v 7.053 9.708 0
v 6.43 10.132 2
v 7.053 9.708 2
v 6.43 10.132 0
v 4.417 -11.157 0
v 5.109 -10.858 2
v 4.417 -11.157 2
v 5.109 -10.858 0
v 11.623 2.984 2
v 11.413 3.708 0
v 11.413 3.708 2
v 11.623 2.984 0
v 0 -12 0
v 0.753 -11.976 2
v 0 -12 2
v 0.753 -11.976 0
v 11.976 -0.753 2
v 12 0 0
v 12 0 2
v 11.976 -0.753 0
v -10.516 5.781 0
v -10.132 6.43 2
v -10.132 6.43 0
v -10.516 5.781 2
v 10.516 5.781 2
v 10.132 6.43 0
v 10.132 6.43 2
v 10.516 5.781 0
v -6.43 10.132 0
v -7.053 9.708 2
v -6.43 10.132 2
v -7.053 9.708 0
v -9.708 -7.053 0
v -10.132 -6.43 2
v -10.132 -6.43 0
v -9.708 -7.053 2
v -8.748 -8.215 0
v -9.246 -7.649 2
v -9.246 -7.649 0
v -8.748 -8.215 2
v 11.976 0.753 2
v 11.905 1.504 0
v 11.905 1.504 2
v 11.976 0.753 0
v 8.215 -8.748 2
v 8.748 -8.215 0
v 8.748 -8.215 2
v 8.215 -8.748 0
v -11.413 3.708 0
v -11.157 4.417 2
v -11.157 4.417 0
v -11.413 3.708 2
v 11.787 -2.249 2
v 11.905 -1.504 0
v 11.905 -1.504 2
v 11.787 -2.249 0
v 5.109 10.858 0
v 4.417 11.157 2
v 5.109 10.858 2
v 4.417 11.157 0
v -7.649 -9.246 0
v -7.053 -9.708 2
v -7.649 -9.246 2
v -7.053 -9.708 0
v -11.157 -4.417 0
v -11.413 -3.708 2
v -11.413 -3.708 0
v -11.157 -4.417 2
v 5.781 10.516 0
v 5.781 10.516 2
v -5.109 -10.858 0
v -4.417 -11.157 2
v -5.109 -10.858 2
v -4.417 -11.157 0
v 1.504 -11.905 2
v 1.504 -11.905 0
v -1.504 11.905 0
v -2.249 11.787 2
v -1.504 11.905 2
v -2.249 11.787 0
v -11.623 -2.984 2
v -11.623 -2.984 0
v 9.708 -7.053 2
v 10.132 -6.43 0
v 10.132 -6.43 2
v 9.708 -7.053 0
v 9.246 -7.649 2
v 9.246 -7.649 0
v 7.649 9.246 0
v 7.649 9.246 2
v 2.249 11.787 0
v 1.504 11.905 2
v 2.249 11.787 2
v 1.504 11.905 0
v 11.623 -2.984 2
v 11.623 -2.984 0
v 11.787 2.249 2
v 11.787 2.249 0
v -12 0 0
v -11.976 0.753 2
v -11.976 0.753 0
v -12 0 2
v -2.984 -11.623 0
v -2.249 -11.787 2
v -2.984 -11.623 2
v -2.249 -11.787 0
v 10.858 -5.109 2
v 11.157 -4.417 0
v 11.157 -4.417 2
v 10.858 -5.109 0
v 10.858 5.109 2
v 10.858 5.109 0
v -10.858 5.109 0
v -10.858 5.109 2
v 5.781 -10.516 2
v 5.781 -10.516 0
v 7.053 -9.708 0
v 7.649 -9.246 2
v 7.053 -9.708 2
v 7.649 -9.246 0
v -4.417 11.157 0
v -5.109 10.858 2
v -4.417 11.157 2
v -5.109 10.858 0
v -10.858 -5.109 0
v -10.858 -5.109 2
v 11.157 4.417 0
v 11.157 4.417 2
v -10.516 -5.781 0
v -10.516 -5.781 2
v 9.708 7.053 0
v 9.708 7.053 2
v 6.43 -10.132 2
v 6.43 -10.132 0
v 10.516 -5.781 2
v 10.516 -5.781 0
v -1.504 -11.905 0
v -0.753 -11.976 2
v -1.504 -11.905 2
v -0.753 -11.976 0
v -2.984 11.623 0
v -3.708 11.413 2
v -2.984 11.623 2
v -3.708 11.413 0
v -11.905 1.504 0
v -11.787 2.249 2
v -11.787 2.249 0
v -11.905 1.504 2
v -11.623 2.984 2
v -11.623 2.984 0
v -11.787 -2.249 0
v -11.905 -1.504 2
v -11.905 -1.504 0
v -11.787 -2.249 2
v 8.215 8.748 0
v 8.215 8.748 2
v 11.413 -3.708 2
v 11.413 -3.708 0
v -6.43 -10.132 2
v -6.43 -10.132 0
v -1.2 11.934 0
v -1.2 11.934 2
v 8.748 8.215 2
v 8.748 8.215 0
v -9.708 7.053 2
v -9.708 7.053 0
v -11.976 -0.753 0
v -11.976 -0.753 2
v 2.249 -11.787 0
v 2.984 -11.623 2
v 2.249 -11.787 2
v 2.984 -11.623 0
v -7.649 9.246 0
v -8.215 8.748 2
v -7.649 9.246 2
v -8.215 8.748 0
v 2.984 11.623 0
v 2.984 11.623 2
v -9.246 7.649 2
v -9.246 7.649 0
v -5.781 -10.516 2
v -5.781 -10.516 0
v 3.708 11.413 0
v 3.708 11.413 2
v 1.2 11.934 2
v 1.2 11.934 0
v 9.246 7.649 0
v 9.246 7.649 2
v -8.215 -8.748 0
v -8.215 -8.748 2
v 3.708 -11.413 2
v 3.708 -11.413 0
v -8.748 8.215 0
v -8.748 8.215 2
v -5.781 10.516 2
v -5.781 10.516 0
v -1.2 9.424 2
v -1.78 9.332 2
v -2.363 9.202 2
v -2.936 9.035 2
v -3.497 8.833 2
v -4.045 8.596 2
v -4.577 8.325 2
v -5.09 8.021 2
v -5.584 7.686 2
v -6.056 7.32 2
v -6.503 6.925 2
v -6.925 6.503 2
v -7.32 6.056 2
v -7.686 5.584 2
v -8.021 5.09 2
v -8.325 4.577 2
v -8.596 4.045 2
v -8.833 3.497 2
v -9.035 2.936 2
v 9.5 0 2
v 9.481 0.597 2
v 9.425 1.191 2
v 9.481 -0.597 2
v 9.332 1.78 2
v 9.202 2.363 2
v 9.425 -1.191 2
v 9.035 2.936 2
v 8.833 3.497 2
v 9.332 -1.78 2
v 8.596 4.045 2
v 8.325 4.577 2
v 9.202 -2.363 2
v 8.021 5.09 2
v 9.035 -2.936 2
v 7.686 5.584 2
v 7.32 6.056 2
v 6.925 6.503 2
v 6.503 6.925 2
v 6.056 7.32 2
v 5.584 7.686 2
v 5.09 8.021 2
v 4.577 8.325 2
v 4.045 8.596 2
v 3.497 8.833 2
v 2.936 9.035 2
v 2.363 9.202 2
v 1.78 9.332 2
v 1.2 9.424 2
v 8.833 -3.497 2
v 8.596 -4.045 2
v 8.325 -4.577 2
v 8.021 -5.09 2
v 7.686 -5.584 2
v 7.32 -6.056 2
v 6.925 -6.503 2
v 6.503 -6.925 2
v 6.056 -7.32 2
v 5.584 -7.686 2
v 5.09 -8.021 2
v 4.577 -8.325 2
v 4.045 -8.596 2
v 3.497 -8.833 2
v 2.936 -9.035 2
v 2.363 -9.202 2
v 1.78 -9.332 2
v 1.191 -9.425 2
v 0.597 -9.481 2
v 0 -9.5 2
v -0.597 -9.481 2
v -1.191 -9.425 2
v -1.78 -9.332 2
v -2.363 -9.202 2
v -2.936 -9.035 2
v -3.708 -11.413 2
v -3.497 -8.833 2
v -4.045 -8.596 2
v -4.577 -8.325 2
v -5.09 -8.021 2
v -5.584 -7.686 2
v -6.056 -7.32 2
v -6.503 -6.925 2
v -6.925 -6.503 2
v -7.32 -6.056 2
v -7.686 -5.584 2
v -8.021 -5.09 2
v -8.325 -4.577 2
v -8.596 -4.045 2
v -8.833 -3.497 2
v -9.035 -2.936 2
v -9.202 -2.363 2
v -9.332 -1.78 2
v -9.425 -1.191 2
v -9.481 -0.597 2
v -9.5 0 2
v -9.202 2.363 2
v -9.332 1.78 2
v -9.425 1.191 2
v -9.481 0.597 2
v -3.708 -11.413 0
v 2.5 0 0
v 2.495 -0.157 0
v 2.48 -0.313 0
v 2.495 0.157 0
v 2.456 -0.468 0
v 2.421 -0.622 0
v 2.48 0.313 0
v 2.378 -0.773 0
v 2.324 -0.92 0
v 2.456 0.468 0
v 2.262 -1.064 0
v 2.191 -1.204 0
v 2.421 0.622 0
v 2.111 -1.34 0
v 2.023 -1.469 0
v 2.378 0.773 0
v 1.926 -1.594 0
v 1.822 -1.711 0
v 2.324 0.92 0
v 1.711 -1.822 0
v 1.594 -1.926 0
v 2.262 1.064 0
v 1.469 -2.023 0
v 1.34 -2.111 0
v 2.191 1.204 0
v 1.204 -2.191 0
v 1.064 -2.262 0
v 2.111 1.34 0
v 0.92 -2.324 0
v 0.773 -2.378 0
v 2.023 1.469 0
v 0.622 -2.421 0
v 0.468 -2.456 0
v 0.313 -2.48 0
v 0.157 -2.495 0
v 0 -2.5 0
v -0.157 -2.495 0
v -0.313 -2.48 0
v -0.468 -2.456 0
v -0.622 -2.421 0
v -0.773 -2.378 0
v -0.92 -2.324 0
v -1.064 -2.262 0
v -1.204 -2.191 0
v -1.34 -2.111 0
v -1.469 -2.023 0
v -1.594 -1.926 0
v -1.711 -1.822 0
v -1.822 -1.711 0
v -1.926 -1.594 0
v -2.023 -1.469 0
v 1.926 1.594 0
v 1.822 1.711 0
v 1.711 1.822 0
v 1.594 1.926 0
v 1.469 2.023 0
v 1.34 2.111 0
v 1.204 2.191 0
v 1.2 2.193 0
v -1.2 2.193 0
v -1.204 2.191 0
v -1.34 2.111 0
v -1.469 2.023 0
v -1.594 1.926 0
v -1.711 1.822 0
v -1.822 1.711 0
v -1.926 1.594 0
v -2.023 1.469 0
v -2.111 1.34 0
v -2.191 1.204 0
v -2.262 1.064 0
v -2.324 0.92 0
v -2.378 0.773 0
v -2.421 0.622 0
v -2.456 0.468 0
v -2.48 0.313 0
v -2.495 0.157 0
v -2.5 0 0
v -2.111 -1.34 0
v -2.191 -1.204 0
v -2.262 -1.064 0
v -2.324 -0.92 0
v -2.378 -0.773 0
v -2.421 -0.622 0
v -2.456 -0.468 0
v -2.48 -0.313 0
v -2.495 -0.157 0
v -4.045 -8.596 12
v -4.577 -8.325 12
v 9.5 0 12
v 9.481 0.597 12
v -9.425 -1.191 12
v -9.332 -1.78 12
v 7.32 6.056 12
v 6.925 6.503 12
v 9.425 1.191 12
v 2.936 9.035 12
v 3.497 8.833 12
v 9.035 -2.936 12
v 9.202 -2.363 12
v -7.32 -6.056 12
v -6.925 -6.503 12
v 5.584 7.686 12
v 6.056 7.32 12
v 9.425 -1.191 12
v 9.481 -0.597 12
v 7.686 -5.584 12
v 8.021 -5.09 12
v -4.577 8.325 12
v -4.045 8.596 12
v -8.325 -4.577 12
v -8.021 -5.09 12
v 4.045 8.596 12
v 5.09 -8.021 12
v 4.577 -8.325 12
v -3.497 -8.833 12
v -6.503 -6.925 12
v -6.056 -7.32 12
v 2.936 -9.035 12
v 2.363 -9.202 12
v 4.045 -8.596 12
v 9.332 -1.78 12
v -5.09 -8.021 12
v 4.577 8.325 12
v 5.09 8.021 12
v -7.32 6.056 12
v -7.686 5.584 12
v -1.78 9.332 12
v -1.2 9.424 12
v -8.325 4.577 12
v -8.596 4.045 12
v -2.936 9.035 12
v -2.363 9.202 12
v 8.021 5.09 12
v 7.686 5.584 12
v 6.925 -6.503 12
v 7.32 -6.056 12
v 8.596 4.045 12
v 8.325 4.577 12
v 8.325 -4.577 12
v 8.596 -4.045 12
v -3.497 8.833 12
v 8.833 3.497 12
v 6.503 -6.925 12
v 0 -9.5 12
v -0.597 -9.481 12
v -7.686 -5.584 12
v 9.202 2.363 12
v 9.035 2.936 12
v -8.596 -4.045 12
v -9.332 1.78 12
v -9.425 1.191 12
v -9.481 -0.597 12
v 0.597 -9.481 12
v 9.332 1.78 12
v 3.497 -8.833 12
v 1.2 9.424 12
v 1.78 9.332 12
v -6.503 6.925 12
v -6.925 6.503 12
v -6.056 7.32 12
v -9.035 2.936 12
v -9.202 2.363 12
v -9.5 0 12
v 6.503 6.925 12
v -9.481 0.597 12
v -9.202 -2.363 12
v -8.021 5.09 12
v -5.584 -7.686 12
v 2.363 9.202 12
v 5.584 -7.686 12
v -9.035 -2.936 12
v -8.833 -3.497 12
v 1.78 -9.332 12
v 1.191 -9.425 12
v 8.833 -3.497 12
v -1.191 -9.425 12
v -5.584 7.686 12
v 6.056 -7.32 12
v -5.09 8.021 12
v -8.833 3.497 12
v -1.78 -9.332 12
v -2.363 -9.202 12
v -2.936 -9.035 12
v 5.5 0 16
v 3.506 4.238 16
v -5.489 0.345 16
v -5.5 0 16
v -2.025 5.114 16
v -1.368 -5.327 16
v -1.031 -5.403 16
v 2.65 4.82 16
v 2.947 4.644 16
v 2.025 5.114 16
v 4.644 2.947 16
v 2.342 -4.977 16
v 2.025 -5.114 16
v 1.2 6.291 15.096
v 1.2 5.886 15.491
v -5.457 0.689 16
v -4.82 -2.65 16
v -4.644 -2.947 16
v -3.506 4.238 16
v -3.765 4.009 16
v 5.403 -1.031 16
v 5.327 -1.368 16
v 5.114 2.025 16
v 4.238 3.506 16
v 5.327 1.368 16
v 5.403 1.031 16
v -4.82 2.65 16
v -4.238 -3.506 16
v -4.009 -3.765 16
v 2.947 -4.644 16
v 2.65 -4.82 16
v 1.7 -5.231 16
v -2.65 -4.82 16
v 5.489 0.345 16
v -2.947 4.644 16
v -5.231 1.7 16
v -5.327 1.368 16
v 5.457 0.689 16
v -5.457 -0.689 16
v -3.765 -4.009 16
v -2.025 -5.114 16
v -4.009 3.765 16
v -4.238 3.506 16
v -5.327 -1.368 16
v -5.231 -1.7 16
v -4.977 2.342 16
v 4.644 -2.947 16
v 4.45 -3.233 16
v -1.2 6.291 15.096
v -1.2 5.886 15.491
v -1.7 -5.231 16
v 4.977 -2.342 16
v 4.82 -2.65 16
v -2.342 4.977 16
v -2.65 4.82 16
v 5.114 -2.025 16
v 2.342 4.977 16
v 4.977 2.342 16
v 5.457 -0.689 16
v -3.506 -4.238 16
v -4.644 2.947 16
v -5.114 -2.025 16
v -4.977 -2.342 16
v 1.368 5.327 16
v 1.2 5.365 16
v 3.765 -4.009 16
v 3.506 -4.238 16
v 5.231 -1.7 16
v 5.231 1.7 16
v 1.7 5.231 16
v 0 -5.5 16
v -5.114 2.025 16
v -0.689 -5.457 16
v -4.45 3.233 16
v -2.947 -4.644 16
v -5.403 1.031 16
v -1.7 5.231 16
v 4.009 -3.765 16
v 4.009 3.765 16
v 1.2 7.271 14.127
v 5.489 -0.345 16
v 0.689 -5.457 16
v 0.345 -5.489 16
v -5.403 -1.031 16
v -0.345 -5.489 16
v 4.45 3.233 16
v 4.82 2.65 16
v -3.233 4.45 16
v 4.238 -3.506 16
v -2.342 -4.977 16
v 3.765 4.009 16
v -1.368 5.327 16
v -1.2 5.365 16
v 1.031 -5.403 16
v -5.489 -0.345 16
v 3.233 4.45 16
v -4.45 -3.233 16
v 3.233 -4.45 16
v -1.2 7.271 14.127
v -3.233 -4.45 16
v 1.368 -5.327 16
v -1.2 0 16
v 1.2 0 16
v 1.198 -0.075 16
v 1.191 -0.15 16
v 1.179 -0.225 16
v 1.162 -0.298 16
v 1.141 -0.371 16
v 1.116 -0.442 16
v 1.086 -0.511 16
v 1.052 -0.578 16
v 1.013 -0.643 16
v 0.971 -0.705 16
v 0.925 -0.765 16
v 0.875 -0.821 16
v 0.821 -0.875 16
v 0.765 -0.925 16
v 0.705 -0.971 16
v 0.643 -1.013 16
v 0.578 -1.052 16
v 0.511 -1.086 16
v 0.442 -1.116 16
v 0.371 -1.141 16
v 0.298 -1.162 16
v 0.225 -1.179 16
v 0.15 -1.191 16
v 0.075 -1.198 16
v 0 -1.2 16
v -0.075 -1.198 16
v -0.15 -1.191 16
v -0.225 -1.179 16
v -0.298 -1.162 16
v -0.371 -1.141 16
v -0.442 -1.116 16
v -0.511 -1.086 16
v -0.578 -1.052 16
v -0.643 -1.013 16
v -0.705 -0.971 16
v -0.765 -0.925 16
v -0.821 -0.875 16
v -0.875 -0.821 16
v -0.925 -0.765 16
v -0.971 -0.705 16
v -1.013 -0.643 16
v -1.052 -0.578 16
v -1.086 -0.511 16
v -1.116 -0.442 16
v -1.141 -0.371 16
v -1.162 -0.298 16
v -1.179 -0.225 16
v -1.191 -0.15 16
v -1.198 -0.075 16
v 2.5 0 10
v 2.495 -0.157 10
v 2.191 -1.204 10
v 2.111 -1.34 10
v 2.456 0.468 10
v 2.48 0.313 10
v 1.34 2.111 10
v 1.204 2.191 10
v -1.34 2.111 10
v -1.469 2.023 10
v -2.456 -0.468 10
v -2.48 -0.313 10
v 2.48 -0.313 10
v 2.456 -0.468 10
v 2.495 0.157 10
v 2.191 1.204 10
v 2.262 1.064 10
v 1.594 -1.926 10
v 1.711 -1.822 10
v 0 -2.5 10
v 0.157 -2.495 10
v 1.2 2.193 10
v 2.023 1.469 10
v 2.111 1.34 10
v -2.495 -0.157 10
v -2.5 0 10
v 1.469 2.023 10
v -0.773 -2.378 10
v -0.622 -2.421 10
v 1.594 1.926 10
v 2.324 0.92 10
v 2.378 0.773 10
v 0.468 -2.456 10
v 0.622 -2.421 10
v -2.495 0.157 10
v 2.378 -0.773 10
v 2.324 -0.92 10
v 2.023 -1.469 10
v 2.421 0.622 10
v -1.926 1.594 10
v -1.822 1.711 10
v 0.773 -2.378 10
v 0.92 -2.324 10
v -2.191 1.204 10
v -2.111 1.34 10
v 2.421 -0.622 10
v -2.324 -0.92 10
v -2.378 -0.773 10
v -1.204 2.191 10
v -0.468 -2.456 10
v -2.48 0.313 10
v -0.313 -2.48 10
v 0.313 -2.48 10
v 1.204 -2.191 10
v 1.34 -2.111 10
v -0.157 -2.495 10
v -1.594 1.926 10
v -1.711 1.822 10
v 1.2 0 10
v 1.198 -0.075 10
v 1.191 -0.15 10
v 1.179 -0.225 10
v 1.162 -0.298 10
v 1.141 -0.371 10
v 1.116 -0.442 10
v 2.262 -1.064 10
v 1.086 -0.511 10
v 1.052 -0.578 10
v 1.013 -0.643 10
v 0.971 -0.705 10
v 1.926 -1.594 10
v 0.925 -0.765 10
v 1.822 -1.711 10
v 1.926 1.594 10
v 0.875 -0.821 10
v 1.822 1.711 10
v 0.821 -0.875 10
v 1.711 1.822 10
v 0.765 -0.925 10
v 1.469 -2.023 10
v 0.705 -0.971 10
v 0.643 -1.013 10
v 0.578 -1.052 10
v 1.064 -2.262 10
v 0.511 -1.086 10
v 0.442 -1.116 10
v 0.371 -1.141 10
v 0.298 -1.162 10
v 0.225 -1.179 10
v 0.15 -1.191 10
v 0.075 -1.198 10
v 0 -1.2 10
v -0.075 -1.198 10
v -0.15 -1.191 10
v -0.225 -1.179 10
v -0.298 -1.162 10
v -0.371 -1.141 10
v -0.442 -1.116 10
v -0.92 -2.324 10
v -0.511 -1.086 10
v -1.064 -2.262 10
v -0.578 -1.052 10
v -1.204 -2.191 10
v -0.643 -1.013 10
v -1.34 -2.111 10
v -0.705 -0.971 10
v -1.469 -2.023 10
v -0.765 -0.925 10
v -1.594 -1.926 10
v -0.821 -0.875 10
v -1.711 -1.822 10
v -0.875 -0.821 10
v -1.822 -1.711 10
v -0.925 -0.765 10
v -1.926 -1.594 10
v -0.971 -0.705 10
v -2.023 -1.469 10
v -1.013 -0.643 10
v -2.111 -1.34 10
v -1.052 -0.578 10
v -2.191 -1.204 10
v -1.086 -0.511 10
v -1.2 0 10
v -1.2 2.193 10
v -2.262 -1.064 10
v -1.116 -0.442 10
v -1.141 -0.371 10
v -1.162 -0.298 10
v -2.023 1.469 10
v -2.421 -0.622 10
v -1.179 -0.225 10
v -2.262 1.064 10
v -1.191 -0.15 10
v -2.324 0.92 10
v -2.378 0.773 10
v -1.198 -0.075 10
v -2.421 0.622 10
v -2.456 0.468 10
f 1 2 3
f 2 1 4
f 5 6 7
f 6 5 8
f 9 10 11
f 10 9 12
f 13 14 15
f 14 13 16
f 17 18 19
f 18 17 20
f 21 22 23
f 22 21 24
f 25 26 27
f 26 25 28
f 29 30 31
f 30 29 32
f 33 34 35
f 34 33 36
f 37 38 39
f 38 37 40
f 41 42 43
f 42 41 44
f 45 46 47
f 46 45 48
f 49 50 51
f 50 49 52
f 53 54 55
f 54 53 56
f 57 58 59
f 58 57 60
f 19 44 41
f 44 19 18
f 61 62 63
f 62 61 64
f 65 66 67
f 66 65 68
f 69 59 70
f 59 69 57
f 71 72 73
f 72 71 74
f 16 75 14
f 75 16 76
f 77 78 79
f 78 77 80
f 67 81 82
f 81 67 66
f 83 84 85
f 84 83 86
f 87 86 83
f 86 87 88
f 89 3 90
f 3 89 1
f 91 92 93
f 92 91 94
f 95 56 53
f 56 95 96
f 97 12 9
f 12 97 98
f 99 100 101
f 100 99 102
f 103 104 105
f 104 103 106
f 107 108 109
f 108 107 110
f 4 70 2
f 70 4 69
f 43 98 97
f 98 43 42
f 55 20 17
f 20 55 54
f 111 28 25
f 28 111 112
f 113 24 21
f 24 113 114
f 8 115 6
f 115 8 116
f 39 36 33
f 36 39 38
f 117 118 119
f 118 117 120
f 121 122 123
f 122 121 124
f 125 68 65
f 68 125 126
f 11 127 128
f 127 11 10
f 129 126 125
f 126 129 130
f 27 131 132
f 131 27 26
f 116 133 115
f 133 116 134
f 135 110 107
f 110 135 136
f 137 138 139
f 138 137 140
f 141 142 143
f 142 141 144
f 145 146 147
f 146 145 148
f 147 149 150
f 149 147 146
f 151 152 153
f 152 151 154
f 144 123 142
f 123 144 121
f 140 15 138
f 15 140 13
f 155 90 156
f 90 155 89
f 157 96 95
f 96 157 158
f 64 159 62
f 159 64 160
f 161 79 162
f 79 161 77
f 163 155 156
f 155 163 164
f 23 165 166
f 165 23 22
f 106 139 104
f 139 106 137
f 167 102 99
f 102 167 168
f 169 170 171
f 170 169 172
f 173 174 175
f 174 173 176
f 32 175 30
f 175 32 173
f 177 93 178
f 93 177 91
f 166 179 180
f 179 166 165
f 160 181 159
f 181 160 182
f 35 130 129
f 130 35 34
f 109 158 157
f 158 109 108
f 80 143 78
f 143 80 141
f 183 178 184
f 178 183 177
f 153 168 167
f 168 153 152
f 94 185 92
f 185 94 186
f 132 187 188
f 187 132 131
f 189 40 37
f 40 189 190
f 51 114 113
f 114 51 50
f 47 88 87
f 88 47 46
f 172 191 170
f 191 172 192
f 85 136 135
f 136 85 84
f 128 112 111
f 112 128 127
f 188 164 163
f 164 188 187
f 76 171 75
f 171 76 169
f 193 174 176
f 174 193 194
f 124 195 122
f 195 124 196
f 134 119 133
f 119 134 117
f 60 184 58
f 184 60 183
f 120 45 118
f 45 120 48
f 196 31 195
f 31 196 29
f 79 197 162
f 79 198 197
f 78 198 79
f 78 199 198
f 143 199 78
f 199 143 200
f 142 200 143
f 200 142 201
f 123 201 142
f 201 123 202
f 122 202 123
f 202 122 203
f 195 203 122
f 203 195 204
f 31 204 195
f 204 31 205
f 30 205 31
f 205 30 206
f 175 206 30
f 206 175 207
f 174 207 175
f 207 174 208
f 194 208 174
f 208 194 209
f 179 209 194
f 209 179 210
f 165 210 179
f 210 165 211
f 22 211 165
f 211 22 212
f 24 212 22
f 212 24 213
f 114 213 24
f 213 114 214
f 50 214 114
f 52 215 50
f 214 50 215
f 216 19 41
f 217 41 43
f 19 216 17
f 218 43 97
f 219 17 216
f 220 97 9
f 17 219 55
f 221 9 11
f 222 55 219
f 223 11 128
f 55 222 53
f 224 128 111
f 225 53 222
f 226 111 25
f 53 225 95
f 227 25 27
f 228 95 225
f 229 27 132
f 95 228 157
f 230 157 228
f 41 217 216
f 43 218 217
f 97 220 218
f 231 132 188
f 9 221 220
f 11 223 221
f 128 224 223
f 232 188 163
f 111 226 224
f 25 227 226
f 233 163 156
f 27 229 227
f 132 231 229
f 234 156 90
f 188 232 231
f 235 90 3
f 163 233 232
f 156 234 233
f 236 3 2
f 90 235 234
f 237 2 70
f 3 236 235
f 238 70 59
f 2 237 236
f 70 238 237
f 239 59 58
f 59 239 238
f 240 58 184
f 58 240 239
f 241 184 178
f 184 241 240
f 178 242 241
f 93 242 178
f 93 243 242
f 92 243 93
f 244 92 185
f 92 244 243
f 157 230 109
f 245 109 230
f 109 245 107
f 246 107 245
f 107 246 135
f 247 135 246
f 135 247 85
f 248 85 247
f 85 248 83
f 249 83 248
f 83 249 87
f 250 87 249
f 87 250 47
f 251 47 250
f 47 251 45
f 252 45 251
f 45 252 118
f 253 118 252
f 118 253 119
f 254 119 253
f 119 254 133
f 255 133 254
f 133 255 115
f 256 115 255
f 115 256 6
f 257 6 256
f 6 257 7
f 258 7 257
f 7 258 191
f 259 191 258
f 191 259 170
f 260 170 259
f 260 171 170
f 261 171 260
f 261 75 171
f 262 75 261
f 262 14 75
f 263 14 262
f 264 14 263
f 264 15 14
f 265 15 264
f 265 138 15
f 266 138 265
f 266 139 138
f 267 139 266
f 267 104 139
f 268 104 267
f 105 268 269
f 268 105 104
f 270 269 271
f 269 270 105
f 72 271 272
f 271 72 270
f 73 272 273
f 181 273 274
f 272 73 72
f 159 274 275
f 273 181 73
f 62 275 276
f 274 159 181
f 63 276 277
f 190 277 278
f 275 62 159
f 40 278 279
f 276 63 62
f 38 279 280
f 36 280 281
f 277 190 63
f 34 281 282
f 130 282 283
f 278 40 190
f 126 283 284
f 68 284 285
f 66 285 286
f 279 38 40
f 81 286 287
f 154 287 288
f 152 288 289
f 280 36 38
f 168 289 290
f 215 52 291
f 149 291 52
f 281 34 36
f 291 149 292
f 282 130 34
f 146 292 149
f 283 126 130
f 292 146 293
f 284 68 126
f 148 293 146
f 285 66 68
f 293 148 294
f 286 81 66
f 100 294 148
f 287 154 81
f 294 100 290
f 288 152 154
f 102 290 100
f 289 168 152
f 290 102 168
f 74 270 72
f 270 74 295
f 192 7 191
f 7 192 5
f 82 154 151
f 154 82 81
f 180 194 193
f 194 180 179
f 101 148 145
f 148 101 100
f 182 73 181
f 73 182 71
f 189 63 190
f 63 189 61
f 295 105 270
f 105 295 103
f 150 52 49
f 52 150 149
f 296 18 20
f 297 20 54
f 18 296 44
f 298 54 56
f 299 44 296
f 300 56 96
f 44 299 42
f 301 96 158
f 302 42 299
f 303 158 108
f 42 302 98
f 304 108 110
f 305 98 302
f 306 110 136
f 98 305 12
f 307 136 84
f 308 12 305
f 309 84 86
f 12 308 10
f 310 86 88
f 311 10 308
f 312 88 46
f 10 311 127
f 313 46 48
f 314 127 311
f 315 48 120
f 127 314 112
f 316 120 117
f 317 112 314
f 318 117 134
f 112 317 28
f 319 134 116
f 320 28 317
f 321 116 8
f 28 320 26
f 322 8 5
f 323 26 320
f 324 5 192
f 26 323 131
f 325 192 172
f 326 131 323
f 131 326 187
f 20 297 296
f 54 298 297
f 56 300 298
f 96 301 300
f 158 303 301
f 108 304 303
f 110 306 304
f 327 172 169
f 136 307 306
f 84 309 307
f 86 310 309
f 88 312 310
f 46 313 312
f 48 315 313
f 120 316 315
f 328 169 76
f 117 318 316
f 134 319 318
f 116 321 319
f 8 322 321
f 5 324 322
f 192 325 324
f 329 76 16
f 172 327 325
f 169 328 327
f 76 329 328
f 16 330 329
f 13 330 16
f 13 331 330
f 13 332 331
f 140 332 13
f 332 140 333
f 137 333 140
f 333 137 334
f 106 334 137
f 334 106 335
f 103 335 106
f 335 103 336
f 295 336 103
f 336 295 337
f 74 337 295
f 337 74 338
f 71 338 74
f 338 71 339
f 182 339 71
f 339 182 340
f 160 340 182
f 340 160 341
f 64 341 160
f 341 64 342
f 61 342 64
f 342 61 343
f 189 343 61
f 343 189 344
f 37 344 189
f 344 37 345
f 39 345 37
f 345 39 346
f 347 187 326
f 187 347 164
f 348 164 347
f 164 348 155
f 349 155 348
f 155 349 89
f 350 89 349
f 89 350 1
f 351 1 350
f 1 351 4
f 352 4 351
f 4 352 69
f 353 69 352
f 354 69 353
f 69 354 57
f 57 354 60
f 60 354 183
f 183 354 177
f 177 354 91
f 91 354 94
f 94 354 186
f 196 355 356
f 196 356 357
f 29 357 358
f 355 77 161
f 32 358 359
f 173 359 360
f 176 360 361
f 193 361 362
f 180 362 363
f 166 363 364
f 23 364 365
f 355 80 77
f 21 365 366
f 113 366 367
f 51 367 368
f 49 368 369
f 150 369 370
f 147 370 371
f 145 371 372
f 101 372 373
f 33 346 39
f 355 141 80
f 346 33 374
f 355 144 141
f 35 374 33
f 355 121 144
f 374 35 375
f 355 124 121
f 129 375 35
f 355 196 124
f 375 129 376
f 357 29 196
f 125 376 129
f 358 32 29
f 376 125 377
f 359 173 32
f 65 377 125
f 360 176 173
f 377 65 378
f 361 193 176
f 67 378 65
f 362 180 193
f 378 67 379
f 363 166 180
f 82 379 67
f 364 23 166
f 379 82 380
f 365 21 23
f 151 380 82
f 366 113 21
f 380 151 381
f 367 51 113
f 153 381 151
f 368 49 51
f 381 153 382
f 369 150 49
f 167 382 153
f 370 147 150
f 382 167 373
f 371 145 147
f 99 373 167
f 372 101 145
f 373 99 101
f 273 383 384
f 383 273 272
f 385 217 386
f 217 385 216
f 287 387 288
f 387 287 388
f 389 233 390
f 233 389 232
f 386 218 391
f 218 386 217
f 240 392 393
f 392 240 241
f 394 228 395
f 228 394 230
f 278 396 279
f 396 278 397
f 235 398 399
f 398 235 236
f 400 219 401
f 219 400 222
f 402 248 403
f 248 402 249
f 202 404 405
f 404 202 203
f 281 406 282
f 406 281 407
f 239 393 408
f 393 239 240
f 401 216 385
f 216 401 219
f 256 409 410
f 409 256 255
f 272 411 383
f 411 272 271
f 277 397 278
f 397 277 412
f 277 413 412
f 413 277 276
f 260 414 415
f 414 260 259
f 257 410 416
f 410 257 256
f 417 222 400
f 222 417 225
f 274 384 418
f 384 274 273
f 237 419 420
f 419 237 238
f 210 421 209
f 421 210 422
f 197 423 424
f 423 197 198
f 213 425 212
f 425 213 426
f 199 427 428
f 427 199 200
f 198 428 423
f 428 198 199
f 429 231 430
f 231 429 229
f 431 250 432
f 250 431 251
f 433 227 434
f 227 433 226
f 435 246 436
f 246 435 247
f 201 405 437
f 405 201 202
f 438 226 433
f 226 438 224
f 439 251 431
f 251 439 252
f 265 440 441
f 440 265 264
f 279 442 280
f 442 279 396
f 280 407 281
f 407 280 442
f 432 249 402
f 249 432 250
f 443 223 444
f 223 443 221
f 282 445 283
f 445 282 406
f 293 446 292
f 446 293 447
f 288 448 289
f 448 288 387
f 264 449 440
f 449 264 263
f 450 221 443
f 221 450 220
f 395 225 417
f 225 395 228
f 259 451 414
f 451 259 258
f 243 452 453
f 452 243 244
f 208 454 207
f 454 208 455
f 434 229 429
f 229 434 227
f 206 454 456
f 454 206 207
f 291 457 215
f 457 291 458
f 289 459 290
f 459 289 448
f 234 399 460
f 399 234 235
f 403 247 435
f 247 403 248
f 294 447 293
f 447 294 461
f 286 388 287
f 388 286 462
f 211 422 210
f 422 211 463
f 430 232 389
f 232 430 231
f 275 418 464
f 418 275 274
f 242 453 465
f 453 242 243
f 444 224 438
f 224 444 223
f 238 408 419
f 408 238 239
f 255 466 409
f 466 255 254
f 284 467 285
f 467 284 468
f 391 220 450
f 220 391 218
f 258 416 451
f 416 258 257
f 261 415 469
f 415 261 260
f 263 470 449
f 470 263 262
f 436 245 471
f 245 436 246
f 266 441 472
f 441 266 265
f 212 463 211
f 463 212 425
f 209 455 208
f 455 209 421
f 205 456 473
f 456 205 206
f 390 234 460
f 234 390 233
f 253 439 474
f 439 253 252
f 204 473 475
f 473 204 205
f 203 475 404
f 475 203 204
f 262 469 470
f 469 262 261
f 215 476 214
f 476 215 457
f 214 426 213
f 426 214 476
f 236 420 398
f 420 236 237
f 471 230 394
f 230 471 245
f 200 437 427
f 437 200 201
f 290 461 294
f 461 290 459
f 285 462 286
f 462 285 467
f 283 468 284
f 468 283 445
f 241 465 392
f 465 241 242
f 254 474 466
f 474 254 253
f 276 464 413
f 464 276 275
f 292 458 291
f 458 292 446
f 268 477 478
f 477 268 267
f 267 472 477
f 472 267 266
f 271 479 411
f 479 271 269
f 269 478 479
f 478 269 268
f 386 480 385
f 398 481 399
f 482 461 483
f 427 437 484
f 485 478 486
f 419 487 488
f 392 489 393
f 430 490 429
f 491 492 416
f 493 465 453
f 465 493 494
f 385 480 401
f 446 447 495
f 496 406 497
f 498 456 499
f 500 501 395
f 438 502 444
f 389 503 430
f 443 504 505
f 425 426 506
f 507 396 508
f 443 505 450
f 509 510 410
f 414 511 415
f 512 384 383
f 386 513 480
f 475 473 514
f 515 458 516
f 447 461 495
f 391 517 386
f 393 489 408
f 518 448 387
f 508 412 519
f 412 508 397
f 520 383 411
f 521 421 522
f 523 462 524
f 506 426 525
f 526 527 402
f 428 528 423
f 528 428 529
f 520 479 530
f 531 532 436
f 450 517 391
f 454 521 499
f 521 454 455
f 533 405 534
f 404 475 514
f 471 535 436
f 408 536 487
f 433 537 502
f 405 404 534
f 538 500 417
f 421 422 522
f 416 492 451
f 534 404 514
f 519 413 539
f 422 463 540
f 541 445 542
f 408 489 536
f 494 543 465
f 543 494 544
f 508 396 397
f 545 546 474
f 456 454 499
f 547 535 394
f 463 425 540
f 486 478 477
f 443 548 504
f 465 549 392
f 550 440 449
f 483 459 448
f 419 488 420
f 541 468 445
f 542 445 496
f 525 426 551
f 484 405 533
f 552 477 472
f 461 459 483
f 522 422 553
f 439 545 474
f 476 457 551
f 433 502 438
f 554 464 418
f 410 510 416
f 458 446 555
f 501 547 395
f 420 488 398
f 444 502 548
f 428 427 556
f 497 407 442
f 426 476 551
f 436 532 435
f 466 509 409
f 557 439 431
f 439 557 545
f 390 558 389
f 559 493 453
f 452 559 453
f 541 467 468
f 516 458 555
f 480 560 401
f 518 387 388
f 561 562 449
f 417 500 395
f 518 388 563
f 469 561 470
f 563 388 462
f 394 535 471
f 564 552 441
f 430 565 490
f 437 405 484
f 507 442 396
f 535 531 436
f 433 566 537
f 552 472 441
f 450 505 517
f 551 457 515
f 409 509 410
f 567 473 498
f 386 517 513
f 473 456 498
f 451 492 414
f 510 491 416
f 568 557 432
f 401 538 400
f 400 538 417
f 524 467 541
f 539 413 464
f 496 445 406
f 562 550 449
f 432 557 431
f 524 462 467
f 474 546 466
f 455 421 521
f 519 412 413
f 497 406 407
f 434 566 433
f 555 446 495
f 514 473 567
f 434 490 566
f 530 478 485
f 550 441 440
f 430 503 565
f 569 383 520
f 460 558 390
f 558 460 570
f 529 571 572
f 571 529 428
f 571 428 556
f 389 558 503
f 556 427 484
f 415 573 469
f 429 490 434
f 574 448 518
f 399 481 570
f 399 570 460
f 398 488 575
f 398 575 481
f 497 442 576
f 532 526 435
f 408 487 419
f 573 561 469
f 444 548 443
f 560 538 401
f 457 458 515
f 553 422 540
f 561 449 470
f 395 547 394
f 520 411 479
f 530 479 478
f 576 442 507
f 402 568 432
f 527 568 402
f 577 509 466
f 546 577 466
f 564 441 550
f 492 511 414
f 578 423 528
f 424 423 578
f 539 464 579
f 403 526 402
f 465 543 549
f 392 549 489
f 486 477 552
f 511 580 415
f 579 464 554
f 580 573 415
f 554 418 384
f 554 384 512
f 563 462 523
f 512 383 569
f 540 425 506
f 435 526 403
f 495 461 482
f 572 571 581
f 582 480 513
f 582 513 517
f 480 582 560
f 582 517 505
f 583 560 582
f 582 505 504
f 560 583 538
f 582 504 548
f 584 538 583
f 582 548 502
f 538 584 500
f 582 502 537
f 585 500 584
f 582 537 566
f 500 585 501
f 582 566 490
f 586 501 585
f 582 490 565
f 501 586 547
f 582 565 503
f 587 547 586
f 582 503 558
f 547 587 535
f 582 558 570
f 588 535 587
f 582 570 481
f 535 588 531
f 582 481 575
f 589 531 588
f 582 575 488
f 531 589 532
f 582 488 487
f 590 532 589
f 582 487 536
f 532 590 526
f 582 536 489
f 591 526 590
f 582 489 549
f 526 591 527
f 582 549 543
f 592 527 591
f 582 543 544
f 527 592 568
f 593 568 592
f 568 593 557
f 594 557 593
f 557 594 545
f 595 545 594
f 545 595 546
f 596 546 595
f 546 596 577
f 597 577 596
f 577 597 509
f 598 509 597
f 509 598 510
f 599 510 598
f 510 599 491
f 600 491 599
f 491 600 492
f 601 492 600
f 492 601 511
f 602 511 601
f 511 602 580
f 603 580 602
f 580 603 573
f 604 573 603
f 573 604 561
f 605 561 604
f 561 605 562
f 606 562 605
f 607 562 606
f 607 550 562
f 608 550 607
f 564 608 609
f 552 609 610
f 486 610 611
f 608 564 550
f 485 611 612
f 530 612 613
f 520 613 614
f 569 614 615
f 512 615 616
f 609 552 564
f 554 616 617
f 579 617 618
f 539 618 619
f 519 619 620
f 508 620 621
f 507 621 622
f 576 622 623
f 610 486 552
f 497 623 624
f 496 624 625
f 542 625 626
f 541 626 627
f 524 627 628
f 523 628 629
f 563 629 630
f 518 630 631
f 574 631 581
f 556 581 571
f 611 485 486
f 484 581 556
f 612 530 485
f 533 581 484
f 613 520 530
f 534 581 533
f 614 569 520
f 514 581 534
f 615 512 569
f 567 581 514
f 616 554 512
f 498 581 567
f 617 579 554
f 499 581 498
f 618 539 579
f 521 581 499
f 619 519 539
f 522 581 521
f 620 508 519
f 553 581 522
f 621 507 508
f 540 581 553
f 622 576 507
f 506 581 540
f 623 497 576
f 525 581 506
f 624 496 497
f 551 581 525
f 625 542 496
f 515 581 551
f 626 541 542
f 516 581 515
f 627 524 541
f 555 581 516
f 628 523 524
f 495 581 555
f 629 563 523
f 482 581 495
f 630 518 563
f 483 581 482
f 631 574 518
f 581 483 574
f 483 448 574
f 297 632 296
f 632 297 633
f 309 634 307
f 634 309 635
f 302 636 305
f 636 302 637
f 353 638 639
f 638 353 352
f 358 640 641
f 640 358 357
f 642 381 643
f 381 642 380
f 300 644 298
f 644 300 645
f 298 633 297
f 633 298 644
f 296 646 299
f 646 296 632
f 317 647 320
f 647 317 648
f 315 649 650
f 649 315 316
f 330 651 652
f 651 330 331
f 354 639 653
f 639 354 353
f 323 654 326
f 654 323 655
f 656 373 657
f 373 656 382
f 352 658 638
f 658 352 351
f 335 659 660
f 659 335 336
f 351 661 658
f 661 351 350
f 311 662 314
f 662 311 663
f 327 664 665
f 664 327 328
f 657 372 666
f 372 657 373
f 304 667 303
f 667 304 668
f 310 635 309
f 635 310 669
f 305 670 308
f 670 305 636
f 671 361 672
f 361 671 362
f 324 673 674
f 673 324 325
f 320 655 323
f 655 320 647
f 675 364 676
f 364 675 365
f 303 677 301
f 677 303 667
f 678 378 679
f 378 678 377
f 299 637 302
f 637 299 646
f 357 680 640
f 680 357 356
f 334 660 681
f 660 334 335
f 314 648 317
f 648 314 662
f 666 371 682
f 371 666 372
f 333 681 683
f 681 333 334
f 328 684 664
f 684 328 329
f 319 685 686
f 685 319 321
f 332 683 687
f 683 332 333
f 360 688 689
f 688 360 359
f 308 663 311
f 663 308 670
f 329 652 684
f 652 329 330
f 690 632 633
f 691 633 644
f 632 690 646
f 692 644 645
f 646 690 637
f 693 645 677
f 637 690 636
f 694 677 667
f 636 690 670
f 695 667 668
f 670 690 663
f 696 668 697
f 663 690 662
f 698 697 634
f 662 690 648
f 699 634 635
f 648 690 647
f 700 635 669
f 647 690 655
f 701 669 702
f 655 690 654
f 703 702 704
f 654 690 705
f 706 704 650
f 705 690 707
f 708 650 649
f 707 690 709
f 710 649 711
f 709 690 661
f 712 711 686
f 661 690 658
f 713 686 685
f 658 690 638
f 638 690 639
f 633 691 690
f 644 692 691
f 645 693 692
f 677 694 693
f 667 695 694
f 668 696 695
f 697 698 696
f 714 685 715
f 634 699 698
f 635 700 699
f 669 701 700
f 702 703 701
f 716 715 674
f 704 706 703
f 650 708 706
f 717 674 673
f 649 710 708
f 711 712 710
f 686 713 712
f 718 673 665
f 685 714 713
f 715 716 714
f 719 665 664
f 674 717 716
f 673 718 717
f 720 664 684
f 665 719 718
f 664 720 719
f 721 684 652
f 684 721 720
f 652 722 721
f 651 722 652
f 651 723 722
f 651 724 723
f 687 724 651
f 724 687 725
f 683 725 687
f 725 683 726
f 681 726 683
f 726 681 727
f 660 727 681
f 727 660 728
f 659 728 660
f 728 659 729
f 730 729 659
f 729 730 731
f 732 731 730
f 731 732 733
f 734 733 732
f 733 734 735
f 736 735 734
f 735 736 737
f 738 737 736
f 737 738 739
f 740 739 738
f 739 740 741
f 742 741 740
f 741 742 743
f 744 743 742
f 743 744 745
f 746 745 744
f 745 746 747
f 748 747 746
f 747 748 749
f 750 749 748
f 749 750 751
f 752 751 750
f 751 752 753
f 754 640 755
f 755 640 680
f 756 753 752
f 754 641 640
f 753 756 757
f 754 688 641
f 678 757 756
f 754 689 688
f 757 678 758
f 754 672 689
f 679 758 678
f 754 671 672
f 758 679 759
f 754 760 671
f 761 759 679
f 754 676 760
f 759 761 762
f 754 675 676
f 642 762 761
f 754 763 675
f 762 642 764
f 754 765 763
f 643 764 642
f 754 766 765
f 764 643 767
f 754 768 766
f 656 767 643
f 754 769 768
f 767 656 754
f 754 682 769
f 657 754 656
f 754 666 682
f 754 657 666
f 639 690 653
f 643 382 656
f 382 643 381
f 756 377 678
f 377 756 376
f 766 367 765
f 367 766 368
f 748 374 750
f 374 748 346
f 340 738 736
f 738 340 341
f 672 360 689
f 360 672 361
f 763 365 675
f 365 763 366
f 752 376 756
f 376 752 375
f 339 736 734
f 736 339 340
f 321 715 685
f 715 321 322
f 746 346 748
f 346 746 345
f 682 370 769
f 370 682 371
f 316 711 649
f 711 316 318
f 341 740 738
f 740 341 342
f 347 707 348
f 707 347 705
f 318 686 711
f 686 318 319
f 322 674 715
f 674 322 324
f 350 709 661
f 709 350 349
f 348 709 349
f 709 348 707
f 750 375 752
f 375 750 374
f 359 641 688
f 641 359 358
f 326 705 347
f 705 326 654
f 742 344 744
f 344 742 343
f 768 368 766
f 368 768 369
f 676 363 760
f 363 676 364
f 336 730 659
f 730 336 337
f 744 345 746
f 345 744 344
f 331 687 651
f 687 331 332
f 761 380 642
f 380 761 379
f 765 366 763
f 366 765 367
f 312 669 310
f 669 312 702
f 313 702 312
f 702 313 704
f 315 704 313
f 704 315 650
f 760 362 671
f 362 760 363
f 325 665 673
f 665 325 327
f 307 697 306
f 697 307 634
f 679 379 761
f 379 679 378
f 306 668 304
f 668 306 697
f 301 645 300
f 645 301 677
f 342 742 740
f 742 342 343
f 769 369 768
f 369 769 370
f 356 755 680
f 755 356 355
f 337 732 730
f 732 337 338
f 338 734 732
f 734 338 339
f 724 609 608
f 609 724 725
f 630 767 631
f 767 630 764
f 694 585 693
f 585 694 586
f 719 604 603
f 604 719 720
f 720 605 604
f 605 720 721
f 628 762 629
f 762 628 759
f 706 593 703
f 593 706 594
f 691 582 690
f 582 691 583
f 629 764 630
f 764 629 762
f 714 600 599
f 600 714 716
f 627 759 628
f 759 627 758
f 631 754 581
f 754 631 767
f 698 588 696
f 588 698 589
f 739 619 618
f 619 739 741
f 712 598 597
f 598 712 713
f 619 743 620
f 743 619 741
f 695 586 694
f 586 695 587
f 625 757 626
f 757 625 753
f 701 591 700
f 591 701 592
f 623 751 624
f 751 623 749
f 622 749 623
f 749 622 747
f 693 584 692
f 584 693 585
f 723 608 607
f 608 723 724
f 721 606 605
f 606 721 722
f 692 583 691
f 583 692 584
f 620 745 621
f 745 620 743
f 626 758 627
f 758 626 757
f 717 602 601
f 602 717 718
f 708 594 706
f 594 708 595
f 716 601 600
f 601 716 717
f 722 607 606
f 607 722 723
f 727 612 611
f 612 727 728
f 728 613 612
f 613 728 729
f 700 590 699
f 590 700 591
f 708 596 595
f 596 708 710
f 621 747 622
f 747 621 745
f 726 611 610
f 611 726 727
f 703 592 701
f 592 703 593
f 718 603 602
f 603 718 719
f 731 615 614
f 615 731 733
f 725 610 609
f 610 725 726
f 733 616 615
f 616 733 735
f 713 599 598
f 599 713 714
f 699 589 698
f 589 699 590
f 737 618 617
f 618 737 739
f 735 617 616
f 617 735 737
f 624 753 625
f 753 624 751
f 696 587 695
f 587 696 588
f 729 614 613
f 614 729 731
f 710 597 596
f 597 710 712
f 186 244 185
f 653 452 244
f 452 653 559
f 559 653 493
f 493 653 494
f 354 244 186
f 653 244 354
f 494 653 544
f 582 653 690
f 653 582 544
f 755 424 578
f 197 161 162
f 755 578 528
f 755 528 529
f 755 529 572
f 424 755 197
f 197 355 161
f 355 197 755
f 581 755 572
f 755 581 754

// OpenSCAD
r = 9.5;
lip = 2.5;
th = 2;

depth = 10;
wedge = 4;

r_cable = 1.2;
r_tube = 2.5;

depth_cable = 10;

module body() {
    union() {
        cylinder(th, r + lip, r + lip);
        cylinder(th + depth, r, r);
        translate([0, 0, th + depth]) cylinder(wedge, r, r - wedge);
    }
}
module hole() {
    union() {
        cylinder(depth_cable, r_tube, r_tube);
        cylinder(th + depth + wedge, r_cable, r_cable);
        translate([-r_cable, 0, 0]) cube([2*r_cable, r + lip, th + depth + wedge]);
    }
}

$fn = 100;
difference() {
    body();
    hole();
}
